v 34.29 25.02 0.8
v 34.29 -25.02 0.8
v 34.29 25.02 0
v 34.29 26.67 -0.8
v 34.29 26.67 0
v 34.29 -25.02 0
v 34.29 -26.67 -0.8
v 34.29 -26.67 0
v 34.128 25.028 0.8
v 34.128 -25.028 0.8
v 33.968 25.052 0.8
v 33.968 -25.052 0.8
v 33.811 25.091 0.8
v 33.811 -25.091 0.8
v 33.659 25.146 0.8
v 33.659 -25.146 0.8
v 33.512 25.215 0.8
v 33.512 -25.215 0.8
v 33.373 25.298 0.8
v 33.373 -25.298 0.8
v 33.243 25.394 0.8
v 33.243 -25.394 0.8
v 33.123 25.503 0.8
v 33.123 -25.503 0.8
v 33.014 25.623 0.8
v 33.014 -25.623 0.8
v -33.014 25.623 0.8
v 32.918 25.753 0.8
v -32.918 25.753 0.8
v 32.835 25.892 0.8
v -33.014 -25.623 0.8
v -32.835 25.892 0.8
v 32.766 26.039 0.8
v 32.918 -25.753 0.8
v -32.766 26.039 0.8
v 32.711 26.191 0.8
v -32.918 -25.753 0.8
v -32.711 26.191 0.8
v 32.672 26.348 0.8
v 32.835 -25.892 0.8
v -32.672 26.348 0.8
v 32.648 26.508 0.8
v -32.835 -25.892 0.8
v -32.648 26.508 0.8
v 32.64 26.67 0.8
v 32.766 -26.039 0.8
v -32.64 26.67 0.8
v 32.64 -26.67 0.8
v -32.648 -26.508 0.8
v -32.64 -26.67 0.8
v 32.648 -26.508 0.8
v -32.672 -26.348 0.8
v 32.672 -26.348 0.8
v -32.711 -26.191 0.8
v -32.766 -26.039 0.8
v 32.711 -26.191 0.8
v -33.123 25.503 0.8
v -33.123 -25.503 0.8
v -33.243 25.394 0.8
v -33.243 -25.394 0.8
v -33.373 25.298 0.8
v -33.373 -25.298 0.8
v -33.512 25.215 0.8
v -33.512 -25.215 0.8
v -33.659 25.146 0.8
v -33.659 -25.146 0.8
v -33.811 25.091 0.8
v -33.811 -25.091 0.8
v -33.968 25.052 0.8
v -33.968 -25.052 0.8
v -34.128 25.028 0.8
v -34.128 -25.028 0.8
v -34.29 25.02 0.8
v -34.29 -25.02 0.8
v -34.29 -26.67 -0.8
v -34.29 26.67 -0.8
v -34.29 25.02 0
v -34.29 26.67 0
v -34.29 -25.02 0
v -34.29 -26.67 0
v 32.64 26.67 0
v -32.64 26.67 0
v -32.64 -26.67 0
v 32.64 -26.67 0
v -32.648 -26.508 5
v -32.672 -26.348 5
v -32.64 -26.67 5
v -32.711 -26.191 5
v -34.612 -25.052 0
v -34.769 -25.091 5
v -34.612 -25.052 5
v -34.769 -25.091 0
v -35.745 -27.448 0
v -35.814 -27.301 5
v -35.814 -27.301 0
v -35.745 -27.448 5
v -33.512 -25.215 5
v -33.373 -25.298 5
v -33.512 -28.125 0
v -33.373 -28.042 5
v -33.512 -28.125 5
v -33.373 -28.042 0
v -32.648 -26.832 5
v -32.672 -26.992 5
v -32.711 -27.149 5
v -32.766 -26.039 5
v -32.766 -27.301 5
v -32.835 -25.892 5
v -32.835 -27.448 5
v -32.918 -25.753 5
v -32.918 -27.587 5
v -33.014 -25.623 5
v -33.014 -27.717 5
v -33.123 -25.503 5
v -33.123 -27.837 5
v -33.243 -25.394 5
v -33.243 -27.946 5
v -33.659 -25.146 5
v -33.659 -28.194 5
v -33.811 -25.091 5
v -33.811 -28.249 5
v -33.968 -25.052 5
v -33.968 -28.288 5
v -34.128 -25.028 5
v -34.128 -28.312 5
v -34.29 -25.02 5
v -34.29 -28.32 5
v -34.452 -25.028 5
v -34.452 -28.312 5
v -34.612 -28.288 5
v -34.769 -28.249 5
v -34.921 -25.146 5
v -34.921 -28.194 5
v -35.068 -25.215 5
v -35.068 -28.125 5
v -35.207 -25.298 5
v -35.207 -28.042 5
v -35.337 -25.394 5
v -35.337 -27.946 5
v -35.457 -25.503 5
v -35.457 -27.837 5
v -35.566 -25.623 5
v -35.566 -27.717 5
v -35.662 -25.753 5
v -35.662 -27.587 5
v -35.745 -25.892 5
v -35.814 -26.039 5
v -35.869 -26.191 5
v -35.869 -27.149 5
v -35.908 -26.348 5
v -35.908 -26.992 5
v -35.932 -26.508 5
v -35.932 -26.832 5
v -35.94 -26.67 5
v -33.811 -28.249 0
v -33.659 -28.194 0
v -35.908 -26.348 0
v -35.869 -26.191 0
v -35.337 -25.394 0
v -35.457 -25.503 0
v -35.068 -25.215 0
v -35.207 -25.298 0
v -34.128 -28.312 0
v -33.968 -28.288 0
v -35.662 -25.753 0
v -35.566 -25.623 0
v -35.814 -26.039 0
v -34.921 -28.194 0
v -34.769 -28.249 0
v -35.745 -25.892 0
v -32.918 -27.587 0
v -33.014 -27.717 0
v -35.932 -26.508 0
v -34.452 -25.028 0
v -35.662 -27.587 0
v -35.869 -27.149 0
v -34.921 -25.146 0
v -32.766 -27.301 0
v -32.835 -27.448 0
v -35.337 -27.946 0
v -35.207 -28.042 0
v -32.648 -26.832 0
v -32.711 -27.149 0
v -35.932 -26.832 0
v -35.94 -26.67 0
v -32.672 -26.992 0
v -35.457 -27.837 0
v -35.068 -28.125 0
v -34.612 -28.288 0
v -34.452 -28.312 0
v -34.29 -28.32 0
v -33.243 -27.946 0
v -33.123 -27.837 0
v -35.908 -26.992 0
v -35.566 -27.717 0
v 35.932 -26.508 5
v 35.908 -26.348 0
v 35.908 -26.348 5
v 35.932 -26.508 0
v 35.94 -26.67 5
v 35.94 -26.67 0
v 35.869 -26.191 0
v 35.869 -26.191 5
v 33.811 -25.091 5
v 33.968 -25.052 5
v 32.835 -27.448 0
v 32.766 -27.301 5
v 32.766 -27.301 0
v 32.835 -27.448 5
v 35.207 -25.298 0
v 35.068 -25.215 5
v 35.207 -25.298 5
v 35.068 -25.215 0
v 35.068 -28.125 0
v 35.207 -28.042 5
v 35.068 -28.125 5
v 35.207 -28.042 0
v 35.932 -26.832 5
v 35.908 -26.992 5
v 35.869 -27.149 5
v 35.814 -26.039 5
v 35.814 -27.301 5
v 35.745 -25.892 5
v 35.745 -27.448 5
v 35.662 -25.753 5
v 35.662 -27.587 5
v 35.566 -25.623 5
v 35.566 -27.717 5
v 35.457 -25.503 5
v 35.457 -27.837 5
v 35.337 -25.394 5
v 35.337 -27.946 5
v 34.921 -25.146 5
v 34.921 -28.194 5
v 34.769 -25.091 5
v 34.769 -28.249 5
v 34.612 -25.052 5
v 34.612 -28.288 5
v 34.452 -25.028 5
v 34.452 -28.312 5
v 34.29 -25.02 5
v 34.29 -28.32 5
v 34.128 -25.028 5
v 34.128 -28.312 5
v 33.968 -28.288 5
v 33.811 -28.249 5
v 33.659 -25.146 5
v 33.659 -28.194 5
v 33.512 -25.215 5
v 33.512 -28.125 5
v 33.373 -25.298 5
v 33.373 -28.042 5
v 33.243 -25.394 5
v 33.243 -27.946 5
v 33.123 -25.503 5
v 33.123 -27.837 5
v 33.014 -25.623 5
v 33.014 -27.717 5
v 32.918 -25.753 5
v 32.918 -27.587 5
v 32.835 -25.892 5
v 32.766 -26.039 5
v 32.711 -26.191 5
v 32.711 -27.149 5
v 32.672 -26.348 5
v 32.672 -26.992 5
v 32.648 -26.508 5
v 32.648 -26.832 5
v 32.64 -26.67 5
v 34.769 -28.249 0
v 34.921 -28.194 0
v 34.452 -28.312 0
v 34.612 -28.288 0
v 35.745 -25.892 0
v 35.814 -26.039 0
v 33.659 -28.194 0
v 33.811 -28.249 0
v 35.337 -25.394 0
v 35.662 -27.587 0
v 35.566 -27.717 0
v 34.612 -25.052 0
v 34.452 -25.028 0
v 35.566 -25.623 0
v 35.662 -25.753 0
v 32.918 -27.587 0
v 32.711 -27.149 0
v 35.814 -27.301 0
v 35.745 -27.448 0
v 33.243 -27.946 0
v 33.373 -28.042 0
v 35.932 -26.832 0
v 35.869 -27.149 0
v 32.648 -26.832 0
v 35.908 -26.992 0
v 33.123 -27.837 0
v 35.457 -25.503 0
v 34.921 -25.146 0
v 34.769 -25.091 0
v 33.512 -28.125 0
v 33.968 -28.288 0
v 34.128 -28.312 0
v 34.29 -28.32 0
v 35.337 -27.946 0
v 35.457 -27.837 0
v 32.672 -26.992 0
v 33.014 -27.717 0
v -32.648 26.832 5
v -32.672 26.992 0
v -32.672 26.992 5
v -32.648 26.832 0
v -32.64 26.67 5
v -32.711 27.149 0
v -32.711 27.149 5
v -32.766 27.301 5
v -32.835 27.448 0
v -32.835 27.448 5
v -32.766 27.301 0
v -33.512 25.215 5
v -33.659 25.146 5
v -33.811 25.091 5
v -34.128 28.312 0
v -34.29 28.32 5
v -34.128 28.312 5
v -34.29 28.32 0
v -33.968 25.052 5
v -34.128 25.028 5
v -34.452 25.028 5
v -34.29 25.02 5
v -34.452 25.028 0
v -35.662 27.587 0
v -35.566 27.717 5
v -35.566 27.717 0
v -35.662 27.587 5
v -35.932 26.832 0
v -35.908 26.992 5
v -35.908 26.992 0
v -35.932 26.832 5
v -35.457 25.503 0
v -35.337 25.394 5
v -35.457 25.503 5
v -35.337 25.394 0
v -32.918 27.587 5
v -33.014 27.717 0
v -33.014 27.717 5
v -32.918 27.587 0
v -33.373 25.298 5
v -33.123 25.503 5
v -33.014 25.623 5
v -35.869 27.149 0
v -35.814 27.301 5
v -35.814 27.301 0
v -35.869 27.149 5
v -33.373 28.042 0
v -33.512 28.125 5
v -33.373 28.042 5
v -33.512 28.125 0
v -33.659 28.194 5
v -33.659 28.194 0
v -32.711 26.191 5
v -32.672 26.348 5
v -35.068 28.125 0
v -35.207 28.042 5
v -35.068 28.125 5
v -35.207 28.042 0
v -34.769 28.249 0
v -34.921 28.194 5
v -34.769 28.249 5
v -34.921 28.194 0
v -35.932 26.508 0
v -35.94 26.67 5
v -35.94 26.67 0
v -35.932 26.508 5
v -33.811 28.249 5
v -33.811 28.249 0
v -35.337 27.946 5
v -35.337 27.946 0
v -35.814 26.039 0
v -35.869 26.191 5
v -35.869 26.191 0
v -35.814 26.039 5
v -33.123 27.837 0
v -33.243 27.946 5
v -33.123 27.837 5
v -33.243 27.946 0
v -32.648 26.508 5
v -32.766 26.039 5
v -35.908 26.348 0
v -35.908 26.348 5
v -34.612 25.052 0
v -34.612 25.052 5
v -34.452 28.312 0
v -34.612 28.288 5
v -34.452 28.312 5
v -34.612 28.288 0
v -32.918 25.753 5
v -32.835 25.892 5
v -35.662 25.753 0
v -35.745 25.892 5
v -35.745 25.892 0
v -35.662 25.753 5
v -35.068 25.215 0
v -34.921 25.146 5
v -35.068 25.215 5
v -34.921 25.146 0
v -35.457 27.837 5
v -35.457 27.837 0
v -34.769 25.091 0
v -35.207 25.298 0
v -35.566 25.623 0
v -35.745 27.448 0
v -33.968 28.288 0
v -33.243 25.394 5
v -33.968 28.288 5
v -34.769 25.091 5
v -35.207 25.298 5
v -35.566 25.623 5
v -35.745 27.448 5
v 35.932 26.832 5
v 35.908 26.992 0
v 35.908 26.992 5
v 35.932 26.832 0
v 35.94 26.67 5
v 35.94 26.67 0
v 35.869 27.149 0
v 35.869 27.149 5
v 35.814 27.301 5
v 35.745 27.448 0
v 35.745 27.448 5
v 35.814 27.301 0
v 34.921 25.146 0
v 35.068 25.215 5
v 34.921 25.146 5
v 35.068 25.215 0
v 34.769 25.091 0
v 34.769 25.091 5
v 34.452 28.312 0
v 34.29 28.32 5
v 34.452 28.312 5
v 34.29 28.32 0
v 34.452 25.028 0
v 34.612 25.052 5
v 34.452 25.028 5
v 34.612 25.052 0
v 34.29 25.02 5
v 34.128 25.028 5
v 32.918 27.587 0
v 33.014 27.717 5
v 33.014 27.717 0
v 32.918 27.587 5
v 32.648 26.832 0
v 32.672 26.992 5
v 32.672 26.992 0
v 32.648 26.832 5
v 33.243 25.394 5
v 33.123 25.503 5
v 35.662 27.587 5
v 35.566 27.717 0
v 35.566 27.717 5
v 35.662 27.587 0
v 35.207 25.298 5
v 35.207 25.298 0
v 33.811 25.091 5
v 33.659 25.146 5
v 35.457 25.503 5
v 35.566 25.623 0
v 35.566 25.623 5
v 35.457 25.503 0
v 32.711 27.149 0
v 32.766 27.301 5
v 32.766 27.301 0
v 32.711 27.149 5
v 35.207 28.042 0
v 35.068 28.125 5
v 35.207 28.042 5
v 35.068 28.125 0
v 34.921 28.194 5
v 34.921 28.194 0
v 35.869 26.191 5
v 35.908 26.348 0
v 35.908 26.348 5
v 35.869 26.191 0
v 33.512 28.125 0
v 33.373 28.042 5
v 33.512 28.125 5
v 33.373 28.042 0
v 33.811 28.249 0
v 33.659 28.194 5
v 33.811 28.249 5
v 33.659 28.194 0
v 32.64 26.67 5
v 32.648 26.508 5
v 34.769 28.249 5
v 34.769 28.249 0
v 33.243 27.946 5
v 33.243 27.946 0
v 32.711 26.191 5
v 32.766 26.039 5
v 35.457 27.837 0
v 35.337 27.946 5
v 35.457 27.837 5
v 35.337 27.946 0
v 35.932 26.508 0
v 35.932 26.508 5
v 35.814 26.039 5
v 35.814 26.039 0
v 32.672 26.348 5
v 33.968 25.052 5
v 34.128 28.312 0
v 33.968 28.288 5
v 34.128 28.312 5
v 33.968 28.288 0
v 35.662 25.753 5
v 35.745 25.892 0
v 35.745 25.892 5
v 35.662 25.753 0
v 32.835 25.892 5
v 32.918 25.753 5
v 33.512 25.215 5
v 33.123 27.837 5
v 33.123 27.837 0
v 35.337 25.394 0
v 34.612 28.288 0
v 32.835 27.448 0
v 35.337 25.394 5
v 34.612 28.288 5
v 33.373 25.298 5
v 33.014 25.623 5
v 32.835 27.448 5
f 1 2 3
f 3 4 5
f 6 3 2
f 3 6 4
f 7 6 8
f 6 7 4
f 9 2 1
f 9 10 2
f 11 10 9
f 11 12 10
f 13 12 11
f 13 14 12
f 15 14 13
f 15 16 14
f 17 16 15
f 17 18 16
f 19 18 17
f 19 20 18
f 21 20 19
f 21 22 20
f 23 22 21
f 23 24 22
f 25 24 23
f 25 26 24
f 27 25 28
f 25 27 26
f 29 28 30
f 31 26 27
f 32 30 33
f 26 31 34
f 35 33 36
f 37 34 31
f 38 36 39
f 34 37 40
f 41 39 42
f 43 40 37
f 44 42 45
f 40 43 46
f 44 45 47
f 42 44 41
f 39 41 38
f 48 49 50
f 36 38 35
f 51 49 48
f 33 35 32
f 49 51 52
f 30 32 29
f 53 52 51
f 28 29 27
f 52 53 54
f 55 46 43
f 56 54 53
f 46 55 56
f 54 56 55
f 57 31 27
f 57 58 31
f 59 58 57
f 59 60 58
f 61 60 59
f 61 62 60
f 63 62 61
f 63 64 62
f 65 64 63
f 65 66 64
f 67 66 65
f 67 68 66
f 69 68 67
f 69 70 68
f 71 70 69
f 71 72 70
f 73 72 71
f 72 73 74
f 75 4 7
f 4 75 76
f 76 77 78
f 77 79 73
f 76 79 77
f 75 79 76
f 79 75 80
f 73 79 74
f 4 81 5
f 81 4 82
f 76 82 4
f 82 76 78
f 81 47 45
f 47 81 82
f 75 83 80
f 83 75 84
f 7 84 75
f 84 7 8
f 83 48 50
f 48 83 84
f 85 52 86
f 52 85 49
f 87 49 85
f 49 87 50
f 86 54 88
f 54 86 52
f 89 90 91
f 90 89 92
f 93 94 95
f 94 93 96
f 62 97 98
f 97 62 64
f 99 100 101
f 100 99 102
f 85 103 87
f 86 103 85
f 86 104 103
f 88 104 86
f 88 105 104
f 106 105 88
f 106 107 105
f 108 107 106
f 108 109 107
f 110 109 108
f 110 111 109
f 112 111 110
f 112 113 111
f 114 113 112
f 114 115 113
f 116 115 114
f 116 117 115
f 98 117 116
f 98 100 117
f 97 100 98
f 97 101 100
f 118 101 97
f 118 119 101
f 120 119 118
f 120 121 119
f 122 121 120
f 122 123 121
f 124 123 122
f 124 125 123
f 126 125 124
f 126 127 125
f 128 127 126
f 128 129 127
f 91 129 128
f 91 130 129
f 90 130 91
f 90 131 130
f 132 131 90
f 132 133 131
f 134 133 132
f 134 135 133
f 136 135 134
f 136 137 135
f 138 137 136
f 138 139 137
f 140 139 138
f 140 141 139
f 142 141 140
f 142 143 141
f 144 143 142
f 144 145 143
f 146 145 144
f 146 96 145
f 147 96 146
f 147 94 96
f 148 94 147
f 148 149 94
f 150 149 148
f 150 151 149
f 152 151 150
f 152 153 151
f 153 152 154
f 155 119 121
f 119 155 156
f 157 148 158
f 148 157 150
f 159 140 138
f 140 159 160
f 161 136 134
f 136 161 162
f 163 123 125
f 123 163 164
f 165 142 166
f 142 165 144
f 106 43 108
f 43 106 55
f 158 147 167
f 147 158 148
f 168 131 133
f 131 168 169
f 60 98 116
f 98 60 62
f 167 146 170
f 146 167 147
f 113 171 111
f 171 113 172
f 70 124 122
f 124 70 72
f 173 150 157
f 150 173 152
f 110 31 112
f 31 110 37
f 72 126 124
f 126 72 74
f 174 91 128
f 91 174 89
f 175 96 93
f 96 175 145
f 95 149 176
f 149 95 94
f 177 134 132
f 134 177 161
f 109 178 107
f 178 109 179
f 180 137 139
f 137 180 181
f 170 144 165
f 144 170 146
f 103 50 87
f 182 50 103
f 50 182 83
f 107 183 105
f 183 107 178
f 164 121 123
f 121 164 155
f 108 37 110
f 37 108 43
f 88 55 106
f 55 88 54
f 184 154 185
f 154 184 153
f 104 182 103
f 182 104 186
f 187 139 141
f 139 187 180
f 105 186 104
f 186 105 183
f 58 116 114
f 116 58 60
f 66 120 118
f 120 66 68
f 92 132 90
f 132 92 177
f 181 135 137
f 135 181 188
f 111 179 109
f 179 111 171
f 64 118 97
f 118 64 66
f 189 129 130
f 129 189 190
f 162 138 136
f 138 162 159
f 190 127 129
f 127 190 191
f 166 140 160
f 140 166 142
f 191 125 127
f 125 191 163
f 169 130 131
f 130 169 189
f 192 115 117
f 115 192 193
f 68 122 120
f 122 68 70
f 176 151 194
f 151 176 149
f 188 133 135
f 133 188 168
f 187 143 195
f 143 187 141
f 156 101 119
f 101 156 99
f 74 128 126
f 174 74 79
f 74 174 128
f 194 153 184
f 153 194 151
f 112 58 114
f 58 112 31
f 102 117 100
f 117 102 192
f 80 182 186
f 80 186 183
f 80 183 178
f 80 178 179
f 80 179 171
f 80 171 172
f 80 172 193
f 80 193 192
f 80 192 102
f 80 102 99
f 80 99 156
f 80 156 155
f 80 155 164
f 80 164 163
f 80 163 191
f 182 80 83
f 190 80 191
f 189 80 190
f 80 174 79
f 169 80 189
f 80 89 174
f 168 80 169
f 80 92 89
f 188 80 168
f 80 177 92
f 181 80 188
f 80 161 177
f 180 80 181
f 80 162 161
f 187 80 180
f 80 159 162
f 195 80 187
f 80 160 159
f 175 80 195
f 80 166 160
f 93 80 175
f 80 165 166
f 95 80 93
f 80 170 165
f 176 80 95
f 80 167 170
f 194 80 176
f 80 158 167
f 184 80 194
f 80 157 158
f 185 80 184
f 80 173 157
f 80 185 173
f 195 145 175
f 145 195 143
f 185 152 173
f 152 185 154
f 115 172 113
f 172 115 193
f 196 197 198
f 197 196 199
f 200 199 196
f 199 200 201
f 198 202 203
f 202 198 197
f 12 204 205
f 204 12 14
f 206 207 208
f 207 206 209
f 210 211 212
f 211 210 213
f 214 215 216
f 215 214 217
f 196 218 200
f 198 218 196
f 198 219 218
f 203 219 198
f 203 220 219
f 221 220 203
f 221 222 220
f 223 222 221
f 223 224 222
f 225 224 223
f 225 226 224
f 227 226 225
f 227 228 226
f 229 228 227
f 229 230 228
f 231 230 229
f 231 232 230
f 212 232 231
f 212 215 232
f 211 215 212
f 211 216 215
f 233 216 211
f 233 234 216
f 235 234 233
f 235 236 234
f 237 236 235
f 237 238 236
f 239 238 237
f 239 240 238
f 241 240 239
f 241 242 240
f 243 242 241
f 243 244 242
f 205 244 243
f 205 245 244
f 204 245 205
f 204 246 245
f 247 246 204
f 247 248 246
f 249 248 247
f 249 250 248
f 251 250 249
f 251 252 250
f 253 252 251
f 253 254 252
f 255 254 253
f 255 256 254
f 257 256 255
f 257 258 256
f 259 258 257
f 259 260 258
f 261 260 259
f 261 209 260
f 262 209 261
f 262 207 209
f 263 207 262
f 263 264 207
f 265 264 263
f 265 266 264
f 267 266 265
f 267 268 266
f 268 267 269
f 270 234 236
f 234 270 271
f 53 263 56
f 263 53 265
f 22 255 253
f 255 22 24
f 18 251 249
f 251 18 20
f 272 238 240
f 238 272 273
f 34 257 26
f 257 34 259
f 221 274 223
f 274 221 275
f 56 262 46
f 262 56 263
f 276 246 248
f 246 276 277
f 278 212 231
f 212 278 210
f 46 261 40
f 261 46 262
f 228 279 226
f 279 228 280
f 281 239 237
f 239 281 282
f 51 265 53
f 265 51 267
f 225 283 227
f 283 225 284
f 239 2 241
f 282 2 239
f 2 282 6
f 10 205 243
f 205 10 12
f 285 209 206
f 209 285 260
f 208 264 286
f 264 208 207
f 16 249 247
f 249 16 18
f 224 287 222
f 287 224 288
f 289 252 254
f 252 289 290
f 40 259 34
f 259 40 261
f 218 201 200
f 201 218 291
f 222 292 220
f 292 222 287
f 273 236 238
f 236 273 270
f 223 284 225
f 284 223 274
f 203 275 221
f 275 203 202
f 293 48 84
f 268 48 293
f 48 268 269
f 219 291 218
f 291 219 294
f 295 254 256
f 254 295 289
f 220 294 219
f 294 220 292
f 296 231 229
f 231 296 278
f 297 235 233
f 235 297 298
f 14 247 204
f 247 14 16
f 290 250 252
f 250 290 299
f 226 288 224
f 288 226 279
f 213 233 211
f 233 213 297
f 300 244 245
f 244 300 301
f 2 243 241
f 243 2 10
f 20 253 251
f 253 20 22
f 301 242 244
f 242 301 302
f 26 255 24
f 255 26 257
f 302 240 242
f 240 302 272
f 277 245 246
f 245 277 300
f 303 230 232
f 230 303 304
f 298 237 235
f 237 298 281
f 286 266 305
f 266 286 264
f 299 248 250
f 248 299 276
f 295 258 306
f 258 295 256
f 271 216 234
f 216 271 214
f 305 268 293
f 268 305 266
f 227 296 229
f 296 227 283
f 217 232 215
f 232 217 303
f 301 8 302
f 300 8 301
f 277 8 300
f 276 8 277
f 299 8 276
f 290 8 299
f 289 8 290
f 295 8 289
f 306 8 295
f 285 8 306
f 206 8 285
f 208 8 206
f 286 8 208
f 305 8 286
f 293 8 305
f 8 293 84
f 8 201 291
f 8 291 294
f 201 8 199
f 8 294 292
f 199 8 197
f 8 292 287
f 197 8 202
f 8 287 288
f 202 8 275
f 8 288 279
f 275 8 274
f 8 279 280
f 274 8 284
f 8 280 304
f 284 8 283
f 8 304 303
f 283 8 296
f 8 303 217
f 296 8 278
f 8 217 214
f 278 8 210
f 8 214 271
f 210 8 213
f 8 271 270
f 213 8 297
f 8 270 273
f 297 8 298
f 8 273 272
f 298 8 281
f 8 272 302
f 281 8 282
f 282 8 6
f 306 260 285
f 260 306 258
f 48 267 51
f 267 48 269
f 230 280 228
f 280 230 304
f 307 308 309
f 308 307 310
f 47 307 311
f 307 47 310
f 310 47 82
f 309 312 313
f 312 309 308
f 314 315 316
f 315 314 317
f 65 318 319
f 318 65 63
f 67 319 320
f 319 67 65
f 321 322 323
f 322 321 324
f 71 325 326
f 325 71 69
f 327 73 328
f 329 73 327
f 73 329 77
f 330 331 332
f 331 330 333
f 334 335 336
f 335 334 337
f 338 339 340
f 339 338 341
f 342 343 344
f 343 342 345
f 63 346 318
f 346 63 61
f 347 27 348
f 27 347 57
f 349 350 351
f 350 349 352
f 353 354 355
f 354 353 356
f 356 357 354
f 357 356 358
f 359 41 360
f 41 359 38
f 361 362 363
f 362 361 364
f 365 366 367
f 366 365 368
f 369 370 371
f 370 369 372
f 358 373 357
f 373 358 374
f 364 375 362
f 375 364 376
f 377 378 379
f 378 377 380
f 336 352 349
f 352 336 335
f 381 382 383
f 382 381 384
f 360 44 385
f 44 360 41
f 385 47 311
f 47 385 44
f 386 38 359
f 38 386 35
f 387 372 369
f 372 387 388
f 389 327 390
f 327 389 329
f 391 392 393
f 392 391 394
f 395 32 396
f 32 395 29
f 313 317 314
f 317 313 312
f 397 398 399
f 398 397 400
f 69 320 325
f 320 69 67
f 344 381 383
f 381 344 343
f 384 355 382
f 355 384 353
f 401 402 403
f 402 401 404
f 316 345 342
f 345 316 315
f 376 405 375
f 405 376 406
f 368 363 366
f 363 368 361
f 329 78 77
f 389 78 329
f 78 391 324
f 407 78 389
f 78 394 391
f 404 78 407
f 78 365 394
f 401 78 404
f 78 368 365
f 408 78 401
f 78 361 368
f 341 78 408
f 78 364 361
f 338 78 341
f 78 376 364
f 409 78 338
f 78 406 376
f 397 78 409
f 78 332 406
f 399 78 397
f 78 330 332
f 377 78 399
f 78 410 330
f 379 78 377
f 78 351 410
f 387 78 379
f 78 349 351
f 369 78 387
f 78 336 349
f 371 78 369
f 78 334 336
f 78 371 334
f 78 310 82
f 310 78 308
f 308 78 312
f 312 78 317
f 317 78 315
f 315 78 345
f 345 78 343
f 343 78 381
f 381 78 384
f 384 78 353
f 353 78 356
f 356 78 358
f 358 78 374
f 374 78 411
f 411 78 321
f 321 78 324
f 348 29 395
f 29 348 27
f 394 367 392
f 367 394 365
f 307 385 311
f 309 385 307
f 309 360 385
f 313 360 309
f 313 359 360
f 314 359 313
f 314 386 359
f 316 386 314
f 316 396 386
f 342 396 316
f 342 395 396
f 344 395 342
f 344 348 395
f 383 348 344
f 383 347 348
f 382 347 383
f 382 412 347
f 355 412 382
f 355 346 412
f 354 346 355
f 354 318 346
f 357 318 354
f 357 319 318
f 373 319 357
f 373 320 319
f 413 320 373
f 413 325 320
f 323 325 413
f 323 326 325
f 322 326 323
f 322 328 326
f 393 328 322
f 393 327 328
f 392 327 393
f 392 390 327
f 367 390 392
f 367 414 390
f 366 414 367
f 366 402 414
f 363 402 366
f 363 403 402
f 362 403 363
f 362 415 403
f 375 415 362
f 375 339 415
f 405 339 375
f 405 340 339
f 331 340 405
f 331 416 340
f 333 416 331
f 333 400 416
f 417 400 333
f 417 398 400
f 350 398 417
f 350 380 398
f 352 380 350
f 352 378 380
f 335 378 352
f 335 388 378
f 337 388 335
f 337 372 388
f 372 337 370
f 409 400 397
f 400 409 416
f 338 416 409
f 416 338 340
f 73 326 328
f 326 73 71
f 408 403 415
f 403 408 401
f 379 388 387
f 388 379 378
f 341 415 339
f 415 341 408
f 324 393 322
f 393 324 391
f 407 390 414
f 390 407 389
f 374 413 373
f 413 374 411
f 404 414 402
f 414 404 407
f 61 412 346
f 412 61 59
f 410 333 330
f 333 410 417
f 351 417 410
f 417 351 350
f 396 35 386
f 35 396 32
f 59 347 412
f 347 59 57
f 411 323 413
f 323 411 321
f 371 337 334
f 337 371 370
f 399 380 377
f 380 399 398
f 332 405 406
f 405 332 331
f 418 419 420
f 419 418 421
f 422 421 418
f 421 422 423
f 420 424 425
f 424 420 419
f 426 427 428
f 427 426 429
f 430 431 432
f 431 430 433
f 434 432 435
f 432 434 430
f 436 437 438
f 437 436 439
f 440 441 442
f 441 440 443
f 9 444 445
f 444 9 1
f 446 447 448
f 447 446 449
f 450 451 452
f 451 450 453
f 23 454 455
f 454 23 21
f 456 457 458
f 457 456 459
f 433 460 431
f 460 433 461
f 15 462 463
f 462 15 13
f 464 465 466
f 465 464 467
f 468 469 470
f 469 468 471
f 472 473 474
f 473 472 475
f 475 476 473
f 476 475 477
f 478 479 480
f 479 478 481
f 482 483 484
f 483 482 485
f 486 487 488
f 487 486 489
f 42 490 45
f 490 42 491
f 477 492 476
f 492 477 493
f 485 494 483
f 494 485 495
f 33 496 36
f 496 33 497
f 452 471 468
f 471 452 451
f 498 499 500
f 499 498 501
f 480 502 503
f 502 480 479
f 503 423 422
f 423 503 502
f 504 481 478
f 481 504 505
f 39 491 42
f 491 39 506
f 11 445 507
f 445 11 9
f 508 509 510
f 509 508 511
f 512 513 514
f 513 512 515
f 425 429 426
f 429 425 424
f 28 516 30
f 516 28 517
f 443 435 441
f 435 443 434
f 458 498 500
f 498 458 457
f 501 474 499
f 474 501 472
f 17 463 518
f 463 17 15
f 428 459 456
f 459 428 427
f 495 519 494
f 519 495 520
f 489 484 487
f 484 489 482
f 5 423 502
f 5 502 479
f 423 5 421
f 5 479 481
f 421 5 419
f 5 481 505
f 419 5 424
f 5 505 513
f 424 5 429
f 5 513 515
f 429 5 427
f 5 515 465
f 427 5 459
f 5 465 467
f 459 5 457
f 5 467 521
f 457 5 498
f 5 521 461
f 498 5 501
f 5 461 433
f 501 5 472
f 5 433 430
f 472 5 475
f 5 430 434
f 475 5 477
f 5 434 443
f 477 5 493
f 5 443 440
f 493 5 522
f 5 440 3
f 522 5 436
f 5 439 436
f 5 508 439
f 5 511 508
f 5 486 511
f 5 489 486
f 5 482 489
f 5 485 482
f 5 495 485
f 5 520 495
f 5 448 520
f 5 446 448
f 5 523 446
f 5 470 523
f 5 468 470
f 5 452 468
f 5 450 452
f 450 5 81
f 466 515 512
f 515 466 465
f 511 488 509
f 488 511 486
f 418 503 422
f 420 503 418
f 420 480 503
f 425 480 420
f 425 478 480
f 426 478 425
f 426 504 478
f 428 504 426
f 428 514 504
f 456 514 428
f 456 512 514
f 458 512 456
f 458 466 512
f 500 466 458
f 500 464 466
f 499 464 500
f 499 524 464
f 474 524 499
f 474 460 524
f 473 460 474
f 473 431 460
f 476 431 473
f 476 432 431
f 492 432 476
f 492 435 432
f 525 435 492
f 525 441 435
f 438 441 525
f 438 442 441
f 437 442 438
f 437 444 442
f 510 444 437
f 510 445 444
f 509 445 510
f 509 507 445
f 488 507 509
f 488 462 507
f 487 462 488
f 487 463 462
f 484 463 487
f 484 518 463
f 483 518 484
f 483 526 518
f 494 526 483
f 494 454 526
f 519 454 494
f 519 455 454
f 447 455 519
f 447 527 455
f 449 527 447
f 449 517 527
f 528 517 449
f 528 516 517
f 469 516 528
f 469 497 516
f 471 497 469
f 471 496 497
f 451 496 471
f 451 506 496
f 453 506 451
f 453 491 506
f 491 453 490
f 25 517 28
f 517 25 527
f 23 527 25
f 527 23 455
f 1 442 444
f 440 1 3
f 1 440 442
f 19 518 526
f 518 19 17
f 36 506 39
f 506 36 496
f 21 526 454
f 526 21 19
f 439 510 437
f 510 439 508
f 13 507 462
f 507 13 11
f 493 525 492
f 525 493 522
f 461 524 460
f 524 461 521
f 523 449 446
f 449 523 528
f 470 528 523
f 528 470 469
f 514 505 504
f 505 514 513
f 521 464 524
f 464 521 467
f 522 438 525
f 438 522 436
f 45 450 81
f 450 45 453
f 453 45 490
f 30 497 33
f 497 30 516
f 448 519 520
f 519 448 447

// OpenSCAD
cube([68.58, 53.34, 1.6], center = true);

module mounting_hole() {
    cylinder(h = 5, d = 3.3, $fn = 64);
}

translate([-34.29, -26.67, 0])
    mounting_hole();

translate([34.29, -26.67, 0])
    mounting_hole();

translate([-34.29, 26.67, 0])
    mounting_hole();

translate([34.29, 26.67, 0])
    mounting_hole();
